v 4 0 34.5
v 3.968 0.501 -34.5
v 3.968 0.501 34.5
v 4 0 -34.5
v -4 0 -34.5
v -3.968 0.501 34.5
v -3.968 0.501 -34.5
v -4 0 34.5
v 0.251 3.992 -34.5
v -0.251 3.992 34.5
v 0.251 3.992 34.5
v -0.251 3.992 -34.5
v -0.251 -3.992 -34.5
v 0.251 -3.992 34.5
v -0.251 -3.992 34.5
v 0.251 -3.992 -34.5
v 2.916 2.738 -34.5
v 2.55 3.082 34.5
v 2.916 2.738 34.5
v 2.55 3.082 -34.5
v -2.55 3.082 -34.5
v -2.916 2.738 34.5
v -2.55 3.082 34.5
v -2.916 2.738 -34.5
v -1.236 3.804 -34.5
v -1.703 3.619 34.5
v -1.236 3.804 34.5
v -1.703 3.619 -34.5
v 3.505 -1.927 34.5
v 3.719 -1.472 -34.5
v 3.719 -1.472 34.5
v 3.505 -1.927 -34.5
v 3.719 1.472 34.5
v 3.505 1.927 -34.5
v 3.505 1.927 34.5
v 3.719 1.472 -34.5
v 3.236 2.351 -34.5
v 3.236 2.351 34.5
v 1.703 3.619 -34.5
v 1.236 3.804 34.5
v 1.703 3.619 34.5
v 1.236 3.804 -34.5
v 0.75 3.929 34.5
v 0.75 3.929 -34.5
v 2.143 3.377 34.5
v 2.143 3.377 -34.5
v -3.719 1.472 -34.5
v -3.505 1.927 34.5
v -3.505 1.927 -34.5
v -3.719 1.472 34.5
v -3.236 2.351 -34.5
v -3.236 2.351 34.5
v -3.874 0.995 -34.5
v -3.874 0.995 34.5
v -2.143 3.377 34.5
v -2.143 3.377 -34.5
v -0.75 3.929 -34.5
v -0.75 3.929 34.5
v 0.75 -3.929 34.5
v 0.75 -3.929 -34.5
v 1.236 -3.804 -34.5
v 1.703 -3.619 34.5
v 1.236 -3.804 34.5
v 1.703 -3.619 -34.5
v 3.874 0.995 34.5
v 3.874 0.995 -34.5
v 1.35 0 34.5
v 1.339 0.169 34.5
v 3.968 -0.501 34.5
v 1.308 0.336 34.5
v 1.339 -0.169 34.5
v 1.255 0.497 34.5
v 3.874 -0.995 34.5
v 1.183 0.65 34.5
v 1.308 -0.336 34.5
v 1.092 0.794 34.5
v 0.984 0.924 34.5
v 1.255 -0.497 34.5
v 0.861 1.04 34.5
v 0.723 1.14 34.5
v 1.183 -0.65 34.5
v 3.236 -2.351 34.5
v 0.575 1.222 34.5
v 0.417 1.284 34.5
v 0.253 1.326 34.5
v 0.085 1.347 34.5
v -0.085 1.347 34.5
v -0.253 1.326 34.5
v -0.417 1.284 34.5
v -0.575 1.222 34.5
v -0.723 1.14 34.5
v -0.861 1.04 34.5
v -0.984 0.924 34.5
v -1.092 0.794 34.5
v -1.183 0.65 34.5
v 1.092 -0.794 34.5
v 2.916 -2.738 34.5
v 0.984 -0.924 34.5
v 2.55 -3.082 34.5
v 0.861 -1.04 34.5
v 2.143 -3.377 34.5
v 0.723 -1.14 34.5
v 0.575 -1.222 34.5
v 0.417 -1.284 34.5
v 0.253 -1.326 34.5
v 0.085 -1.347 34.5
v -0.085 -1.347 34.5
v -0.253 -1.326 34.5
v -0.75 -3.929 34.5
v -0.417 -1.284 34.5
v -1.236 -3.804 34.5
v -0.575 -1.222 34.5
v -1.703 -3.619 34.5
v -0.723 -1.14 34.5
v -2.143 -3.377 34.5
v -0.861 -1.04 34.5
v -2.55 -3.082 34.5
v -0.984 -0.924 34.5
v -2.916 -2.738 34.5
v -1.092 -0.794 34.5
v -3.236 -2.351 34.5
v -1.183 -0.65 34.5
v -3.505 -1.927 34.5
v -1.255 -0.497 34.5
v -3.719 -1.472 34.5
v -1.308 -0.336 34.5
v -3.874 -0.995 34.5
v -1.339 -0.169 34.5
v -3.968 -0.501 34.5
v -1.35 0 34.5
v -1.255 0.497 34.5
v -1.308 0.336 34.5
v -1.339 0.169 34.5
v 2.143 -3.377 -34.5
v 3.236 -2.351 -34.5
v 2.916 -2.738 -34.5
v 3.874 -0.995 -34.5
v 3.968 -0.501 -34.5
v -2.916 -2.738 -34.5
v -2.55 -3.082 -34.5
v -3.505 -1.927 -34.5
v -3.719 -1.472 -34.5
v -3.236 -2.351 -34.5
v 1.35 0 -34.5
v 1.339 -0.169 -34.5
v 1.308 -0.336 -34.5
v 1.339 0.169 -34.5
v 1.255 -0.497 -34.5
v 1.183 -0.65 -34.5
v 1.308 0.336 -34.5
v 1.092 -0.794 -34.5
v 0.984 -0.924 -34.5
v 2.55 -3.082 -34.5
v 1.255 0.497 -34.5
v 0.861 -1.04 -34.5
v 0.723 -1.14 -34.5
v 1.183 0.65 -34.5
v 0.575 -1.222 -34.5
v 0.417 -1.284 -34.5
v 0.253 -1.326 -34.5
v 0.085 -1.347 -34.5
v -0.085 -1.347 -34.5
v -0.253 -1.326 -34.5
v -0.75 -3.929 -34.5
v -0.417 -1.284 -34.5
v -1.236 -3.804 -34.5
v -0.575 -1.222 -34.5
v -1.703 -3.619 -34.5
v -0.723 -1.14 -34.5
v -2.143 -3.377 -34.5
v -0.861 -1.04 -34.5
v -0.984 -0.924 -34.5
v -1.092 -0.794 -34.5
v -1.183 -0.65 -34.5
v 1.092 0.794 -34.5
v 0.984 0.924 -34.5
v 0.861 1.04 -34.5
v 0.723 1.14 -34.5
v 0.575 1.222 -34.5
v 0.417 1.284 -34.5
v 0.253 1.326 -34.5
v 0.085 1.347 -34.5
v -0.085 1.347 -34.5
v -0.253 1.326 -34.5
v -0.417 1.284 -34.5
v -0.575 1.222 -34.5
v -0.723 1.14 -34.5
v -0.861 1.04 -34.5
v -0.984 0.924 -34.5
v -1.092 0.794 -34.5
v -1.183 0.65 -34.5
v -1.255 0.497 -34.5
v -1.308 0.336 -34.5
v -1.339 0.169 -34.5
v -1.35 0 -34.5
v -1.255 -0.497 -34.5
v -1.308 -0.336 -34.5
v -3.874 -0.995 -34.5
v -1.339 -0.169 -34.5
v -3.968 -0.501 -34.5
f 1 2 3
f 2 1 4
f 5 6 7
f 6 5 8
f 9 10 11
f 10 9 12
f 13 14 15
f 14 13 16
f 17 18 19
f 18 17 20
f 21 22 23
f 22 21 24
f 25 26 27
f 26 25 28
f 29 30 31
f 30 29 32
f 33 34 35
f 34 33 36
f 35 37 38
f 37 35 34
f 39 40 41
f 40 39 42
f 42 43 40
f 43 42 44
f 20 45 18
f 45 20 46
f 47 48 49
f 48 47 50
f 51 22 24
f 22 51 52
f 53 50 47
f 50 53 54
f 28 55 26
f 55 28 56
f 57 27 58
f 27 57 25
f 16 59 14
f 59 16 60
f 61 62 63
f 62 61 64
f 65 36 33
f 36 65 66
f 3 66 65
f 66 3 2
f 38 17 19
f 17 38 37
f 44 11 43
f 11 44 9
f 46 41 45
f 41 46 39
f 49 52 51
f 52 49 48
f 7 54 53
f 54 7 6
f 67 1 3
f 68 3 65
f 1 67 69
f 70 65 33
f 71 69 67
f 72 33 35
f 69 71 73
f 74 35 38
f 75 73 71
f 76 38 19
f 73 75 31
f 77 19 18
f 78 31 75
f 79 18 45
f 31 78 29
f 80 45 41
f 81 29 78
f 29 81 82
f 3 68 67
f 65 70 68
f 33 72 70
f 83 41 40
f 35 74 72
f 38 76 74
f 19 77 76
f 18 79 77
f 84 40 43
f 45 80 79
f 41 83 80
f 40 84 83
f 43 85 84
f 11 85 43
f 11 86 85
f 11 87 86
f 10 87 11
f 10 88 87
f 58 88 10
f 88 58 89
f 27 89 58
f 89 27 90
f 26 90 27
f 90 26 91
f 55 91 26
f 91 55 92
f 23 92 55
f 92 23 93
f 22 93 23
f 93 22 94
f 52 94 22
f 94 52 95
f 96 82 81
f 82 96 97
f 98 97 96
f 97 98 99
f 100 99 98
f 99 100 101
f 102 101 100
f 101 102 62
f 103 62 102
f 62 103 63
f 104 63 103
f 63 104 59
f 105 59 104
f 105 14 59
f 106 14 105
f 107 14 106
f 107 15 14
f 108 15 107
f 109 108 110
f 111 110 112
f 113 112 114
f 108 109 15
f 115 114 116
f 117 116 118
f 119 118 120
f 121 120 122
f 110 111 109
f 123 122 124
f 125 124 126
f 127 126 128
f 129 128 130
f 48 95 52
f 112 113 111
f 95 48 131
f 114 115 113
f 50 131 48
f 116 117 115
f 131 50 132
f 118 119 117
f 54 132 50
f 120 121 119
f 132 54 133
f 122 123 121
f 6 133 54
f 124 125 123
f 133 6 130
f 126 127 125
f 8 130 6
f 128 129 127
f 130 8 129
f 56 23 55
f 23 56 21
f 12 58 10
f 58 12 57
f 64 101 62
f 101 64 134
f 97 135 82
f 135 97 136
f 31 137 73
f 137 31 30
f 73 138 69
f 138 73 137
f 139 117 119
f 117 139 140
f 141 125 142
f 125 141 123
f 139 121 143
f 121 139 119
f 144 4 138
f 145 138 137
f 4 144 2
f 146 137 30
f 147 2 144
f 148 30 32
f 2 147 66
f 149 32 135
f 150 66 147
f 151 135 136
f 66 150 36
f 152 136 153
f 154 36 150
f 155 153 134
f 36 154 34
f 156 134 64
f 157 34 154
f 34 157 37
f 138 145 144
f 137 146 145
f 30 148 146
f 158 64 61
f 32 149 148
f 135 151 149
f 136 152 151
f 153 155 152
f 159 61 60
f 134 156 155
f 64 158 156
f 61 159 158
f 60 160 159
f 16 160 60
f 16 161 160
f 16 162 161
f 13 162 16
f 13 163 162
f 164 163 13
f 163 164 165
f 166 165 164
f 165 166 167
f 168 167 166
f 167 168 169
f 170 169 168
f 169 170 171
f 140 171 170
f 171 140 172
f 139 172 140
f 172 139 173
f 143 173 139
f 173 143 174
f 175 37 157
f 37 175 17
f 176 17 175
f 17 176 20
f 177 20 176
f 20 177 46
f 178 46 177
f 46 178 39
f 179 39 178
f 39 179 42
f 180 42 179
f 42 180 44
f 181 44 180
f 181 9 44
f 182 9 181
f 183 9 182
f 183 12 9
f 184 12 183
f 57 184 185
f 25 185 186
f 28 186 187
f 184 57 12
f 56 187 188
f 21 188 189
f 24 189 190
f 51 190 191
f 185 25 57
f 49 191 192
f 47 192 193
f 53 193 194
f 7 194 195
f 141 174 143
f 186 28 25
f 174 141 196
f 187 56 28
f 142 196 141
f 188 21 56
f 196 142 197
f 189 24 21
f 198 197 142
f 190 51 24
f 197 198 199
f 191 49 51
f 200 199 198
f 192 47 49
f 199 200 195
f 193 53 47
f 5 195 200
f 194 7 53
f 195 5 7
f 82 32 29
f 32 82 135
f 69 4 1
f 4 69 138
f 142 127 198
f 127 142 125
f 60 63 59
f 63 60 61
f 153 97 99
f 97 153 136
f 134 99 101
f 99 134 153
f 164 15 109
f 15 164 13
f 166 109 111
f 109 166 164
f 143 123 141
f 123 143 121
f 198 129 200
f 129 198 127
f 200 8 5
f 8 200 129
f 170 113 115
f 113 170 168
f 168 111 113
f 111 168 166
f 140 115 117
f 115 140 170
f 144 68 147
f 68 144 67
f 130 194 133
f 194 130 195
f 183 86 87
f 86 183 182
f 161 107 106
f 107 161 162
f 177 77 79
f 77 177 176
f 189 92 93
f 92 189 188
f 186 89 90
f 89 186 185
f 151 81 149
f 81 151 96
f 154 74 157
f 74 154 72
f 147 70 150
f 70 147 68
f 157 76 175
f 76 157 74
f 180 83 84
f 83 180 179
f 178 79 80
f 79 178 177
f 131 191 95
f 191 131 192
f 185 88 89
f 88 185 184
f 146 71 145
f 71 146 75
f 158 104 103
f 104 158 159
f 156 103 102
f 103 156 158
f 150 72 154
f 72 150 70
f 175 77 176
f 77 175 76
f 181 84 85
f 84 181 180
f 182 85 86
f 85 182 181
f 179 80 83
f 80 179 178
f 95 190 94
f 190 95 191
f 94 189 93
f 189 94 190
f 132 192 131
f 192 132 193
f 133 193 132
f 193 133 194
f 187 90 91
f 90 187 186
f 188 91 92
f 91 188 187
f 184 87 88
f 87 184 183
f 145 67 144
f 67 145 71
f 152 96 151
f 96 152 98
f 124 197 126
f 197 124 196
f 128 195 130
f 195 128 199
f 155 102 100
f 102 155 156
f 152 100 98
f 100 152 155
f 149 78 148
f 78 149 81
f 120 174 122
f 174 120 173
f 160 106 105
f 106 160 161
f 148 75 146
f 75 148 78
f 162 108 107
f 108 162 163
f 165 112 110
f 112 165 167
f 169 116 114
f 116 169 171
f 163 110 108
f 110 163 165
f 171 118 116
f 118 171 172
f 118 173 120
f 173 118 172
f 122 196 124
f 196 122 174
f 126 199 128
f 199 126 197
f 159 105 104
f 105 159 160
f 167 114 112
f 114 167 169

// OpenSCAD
$fn = 50;


difference() {
	union() {
		translate(v = [0, 0, -34.5000000000]) {
			cylinder(h = 69, r = 4.0000000000);
		}
	}
	union() {
		translate(v = [0, 0, -100.0000000000]) {
			cylinder(h = 200, r = 1.3500000000);
		}
	}
}
